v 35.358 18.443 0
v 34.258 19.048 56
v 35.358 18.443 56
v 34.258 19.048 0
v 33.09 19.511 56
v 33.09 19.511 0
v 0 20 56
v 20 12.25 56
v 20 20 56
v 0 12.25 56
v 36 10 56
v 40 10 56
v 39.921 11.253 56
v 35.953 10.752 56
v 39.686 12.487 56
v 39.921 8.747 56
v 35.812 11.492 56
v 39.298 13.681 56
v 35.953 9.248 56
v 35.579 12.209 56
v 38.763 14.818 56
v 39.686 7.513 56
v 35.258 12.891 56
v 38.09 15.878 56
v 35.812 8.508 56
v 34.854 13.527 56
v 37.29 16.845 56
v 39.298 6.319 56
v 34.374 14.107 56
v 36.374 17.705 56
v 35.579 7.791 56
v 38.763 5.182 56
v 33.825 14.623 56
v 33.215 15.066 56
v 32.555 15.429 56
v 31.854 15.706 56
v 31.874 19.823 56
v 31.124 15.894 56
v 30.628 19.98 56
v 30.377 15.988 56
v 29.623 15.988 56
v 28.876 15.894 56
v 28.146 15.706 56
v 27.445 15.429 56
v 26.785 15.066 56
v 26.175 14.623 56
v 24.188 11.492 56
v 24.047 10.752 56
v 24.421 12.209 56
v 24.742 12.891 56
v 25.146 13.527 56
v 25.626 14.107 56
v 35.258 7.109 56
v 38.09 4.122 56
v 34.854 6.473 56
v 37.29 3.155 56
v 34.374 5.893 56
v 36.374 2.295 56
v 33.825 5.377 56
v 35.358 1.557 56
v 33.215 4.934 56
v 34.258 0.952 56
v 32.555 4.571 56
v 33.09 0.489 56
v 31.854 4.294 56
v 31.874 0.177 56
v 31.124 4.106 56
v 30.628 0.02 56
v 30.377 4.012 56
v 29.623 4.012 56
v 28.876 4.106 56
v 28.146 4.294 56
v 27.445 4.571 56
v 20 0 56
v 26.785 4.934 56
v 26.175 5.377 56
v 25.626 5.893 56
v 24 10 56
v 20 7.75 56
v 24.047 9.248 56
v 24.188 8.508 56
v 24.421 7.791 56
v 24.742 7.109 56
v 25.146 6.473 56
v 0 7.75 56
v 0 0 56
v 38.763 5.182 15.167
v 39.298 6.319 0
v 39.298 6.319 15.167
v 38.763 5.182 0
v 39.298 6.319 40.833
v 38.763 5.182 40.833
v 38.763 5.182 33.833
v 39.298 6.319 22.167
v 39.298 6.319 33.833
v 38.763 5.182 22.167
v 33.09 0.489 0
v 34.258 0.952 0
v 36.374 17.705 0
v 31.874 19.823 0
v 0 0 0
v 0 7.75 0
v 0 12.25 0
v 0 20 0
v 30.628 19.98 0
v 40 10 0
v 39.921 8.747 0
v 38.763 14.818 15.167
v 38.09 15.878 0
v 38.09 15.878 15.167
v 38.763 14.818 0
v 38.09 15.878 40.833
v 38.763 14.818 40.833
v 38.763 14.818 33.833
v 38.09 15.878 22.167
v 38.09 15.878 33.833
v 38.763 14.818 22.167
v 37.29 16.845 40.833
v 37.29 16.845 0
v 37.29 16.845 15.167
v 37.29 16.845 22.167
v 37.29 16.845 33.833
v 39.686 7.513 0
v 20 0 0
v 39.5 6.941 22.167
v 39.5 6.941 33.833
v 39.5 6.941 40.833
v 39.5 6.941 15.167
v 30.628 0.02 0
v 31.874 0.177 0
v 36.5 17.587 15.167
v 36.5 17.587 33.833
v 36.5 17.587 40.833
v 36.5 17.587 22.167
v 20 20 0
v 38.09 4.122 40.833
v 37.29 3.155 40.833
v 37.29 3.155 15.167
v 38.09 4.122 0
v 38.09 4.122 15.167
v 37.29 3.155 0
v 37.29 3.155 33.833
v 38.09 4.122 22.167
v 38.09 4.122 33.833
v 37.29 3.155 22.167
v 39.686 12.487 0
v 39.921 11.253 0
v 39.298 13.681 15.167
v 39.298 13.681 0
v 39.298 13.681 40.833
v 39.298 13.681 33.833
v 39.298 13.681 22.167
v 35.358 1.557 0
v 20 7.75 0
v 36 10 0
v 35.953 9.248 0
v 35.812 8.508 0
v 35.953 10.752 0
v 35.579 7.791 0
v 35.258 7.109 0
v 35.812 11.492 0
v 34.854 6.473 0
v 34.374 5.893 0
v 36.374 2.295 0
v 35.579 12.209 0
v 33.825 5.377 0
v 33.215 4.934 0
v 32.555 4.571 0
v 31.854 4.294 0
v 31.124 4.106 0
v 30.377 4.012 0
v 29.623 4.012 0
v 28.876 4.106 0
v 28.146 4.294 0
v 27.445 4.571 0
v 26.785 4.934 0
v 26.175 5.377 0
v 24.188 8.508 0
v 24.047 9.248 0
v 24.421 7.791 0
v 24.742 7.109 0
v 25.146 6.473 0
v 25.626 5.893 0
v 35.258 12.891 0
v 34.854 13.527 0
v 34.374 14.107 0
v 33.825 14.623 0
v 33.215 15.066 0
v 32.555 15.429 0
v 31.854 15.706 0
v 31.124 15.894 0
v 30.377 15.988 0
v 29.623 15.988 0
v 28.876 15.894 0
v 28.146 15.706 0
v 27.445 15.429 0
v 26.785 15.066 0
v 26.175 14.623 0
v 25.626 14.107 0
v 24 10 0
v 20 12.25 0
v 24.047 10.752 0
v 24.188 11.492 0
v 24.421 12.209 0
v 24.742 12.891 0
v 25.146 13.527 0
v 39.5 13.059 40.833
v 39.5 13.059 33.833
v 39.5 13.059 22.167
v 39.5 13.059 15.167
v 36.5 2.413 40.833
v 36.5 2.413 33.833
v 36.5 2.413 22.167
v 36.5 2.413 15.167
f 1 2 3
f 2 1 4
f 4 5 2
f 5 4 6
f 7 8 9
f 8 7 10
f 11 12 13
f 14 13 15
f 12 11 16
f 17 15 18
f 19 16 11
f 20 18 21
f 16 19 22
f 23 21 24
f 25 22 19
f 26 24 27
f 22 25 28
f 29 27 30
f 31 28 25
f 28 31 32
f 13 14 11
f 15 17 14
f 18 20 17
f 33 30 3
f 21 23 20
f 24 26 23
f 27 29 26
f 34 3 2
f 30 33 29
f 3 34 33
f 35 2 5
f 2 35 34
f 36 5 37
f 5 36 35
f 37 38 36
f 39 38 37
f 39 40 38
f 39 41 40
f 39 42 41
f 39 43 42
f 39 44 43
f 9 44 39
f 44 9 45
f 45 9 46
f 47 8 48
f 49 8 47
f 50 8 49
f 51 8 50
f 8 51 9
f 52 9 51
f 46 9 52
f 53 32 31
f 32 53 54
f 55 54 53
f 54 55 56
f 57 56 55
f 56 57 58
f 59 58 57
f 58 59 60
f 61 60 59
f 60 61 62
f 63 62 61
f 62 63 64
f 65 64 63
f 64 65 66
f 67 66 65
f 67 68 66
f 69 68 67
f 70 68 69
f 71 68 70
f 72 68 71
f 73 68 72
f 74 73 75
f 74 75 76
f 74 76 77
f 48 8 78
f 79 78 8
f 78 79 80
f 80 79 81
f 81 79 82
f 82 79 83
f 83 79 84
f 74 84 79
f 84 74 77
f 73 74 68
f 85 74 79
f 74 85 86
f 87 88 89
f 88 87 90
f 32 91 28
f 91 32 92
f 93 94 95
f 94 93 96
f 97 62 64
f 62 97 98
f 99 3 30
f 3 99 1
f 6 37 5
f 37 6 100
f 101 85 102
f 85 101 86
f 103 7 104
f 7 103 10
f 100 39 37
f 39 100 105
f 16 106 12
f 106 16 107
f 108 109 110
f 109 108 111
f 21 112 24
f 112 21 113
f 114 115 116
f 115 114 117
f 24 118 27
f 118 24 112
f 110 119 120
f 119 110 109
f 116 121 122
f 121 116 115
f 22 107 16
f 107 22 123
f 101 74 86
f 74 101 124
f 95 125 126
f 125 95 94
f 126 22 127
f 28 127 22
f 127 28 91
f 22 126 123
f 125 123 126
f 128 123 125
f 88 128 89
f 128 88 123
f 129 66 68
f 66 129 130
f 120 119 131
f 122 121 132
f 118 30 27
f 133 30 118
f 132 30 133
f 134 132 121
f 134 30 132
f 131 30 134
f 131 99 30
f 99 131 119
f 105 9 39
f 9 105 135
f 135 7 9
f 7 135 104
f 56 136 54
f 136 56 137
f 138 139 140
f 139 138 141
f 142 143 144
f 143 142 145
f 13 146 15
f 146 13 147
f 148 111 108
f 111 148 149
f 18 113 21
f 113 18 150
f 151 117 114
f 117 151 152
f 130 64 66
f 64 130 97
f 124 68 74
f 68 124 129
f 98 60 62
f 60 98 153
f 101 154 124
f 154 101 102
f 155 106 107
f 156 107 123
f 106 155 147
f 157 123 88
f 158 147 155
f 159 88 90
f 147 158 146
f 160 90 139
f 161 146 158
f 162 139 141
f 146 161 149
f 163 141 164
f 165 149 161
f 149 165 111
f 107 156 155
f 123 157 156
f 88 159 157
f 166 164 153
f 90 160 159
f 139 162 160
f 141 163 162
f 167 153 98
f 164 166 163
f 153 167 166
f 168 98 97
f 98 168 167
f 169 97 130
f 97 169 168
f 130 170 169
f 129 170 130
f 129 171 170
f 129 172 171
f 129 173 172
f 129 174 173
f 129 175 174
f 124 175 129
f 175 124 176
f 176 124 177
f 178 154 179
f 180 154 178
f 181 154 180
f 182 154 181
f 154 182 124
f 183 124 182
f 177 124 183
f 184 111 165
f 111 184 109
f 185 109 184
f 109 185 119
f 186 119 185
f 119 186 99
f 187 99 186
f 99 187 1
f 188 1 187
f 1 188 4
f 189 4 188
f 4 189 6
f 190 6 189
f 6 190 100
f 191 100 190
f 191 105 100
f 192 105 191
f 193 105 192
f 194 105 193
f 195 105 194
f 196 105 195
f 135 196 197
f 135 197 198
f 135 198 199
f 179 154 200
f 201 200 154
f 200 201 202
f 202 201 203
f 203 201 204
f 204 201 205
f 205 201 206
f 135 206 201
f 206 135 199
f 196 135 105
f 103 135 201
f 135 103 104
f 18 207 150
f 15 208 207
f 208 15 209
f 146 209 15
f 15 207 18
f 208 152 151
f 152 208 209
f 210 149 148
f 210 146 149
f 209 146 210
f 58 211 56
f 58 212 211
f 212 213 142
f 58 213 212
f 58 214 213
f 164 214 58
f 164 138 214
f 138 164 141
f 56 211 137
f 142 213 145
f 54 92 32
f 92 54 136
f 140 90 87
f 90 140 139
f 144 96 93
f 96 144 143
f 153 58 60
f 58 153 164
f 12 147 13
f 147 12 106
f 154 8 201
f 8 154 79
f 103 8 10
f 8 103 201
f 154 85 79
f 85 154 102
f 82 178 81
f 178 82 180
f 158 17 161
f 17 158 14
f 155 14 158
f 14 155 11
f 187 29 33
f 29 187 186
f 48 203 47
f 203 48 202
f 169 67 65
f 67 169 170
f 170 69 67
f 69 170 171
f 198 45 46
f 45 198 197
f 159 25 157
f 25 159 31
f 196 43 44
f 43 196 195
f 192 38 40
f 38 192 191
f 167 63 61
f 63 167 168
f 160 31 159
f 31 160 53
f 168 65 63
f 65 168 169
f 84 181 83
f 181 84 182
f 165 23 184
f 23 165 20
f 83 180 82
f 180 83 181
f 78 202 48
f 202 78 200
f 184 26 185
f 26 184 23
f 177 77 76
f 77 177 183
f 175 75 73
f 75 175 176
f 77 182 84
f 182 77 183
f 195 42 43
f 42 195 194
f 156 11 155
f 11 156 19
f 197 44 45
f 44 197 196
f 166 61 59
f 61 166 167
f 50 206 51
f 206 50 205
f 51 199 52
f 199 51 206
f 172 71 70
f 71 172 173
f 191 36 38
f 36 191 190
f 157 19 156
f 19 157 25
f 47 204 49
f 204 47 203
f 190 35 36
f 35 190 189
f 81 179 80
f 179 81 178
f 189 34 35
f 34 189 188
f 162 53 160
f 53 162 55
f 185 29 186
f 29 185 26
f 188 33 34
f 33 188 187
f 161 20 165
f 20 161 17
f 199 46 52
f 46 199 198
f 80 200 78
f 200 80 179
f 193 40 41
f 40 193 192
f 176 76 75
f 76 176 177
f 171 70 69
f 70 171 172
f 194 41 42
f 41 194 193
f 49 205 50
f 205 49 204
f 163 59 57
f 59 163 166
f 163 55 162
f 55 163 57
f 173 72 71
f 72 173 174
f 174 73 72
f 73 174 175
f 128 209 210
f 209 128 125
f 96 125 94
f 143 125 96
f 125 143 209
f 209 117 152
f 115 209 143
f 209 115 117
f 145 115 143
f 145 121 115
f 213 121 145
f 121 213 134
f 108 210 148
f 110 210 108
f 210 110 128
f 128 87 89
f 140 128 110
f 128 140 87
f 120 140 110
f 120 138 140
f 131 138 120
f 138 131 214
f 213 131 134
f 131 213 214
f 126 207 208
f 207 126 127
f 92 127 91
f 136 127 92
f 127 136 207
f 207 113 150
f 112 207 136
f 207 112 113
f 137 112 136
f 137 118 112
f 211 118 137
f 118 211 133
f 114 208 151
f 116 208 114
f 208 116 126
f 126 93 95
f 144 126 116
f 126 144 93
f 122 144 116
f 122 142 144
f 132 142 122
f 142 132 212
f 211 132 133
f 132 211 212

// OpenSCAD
// file: ../references.scad
// Size
//Naming
// _PT = printable
// _ES = exact size
// _IS = insertable with force but no gaps

//--------------threaded rod  (TR)

//----M5

TR_M5_Diameter_ES = 5.8;
//for a hole 
TR_M5_Diamater_IS = 6;
TR_M5_Diamater_PT = 7;


//----M10

TR_M10_Diameter_ES = 9.6;
//for a hole 
TR_M10_Diamater_IS = 10;
TR_M10_Diamater_PT = 12;

//--------------Screw (SC)

//----M5

SC_M5_Diameter_ES = 4.86;
SC_M5_Head_Diameter_ES = 9.24;
SC_M5_Head_Height_ES = 3.0;
//for a hole 
SC_M5_Diamater_IS = 5;
SC_M5_Diamater_PT = 0; //inconnu pour le moment


//--------------Zip ties (ZT)

//Big zip ties I got    

ZT_length_ES = 300;
ZT_width_ES = 4.8;
ZT_height_ES = 1;

ZT_width_PT = 7;
ZT_height_PT = 3;


//--------------Switch (SW)
//switch from castorama 
SW_length_ES = 13;
SW_width_ES = 8;
SW_height_ES = 14;

SW_length_PT = 15;
SW_width_PT = 10;
SW_height_PT = 16;


//https://d138zd1ktt9iqe.cloudfront.net/media/seo_landing_files/length-width-height-01-1646654708.png
// main file
include <../references.scad>

//Dimension de profile

main_body_height = 56;
main_body_length = 40;
main_body_width = 20;

insert_height = 56;
insert_length = 20;
insert_width = 4.5;
module main_body(){ 
 hull(){   
    color("pink"){
        cube([main_body_length-main_body_width,main_body_width,main_body_height]);
    }
    color("red"){
        translate([main_body_length-(insert_length/2),main_body_width/2,0]){cylinder(h=main_body_height, r=main_body_width/2, $fn=50);}
        }
}}

module G_insert(){
    color("green"){
        cube([insert_length,insert_width,insert_height]);
    }
}

module threaded_shaft_hole(){
    color("red"){
        cylinder(h=main_body_height, r=(TR_M10_Diamater_PT)/2, $fn=50);
    }
}
module zip_ties_hole(){
    color("purple"){
        //flip 90° the measurements
        cube([ZT_height_PT,main_body_width,ZT_width_PT]);
    }
}

difference(){
    main_body();
    translate([0,main_body_width/2-insert_width/2,0]){
        G_insert();}
        
    translate([main_body_length-(insert_length/2),main_body_width/2,0]){
        threaded_shaft_hole();}
    translate([main_body_length-ZT_height_PT-0.5,0,main_body_height/3-(ZT_width_PT/2)]){
        zip_ties_hole();}
    translate([main_body_length-ZT_height_PT-0.5,0,(main_body_height/3)*2-(ZT_width_PT/2)]){
        zip_ties_hole();}
        
    }
